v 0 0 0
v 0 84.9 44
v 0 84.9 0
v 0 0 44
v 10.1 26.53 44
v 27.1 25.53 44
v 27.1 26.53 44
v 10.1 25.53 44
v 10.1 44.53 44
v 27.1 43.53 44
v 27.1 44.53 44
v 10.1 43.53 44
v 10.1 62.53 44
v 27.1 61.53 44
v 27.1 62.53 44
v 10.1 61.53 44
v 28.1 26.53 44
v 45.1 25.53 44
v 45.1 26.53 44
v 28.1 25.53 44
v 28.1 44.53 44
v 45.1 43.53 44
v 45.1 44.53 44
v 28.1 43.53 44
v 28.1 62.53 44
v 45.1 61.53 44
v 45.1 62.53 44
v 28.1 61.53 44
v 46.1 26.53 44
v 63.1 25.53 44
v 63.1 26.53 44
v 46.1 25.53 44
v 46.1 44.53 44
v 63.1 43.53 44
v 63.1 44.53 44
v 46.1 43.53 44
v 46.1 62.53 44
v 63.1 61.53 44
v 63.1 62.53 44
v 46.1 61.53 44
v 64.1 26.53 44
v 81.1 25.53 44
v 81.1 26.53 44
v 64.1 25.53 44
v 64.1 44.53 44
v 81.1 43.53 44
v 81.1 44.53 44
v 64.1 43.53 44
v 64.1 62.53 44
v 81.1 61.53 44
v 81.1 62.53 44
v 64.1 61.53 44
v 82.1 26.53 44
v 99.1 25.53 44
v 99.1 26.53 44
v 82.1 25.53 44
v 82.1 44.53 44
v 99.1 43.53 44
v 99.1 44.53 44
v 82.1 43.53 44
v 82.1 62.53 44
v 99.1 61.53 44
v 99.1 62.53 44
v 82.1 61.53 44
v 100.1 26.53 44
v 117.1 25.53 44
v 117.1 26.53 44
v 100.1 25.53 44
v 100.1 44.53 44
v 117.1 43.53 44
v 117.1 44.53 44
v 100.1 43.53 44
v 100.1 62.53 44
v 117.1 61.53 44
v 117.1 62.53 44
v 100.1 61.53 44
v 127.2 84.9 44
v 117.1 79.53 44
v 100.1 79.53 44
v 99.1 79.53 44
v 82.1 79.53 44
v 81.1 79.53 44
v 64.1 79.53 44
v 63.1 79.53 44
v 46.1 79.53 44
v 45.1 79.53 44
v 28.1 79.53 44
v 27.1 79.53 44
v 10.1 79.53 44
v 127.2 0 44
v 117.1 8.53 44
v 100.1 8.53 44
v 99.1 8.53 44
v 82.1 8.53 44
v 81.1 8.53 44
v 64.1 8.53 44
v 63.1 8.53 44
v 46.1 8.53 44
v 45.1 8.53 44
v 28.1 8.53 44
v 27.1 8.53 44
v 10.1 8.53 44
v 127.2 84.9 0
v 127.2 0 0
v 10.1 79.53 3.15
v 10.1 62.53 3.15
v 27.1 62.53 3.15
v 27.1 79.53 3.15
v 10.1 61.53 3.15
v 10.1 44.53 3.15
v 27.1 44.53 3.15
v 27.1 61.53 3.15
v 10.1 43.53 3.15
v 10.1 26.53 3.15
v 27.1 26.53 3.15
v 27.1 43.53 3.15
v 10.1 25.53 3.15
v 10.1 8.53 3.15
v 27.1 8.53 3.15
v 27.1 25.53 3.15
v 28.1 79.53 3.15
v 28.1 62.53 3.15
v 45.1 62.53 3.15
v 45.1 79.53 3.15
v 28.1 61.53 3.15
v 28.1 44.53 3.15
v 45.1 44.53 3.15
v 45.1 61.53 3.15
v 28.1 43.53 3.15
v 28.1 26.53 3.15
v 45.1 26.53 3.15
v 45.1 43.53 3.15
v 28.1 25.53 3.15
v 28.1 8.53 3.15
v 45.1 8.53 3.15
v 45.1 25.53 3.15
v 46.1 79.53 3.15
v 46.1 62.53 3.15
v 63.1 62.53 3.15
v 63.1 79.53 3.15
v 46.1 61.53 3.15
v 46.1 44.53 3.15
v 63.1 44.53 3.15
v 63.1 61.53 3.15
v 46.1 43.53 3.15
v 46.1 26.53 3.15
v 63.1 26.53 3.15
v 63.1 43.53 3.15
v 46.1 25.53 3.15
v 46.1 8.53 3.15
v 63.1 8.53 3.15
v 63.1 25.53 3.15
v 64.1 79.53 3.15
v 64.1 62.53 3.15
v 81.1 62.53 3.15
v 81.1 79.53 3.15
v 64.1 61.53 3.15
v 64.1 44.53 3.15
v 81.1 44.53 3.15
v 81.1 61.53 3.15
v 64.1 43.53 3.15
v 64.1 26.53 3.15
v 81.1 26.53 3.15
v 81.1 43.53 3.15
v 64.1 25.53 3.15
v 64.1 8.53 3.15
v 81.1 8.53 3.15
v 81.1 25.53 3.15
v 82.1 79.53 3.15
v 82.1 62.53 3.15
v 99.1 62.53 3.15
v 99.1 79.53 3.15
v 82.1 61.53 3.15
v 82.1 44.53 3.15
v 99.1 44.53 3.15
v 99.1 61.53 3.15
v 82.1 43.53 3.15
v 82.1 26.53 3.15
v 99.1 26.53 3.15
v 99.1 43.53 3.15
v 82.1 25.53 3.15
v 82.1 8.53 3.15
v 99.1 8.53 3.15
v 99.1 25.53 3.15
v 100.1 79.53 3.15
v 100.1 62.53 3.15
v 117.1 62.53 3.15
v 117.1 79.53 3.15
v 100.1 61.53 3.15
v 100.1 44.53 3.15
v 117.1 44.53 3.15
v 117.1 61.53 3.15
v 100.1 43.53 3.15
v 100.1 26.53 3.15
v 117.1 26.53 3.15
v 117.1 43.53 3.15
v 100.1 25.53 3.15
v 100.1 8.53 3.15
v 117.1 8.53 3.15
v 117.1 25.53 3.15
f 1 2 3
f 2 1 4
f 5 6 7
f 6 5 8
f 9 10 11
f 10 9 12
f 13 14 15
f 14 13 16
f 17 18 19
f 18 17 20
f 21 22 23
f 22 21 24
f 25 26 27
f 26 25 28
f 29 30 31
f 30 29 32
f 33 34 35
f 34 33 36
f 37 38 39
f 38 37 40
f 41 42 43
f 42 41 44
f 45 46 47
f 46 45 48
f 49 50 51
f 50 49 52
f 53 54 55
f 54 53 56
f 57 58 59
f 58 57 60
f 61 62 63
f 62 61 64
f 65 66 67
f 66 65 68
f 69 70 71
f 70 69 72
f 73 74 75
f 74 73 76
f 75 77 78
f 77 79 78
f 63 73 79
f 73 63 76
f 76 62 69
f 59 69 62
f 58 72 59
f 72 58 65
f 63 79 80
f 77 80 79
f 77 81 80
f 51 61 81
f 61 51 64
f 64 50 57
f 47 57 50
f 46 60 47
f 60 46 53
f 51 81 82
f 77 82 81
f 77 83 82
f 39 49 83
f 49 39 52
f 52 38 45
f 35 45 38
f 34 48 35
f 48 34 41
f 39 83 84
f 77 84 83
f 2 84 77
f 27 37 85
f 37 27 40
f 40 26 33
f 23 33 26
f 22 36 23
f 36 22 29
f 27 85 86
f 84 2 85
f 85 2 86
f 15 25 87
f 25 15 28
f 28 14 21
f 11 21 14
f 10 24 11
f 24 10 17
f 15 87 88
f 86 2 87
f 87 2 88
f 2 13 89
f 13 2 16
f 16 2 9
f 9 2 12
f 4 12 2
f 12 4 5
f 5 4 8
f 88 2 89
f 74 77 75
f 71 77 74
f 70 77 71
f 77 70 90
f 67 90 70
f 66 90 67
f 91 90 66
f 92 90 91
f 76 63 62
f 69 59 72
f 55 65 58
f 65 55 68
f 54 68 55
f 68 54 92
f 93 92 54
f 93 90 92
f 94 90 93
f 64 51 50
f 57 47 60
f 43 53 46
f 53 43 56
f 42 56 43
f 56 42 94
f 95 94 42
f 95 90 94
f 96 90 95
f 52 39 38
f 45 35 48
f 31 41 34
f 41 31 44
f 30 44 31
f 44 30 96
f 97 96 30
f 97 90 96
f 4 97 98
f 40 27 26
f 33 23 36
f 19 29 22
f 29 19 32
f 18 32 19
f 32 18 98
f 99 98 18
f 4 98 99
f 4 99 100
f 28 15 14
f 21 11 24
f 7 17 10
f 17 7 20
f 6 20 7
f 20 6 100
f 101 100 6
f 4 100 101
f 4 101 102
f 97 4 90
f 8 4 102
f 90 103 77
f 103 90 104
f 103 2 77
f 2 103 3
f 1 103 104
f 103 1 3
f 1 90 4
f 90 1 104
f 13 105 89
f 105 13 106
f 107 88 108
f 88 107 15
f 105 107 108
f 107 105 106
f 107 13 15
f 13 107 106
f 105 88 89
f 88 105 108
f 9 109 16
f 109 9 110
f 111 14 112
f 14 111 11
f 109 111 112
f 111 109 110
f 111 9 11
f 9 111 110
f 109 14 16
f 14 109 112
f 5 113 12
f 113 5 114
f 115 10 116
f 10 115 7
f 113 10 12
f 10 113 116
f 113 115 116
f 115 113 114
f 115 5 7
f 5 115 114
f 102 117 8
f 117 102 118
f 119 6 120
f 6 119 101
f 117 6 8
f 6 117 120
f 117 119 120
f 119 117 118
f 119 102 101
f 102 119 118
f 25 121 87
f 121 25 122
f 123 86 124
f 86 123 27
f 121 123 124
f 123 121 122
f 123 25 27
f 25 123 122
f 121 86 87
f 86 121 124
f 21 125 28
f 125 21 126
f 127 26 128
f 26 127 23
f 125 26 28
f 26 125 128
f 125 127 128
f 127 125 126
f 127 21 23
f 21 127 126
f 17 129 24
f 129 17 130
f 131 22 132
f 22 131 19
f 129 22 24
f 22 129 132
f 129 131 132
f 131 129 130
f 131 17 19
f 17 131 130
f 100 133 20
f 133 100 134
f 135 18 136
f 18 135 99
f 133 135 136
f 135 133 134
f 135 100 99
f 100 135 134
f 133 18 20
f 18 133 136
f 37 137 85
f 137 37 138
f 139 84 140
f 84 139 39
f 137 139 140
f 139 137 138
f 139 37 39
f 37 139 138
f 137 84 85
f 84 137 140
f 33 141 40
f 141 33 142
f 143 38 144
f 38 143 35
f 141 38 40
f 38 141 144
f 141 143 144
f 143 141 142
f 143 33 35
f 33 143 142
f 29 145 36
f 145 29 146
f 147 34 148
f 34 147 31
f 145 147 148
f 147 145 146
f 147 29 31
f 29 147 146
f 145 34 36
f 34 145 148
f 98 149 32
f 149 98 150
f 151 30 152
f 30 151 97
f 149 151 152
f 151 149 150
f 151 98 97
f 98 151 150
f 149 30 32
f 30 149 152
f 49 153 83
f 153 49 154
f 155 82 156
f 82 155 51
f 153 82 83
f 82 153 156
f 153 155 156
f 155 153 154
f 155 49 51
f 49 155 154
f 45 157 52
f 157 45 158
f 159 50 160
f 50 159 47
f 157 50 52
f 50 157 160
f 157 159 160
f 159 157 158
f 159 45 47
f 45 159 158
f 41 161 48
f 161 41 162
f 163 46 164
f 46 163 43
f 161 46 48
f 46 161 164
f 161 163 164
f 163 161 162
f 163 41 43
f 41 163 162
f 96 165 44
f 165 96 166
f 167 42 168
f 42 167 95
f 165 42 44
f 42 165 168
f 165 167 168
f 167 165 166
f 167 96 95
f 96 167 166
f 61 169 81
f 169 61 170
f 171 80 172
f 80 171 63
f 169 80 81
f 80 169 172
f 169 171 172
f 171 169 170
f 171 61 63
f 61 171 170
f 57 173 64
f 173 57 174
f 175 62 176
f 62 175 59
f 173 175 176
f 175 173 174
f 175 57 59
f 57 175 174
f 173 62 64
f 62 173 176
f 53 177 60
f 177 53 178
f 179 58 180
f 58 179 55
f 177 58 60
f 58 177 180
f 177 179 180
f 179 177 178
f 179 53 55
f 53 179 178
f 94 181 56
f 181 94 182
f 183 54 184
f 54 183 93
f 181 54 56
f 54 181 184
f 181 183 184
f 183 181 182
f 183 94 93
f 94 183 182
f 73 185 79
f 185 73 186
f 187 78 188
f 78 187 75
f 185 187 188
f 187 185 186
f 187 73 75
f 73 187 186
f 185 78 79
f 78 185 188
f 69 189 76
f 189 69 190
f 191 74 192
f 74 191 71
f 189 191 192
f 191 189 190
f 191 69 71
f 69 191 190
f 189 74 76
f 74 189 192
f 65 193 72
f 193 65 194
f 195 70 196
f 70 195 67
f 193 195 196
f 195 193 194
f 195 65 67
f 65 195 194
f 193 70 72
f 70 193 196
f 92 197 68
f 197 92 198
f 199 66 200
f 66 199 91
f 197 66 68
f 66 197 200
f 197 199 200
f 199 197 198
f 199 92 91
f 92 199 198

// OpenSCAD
// NEST 24 Well Plate 10.4mL
// loadName: nest_24_wellplate_10.4ml
// Auto-generated by labware_to_stl.py from Opentrons V2 labware definition

$fn = 64;

difference() {
    // ── Labware body ──────────────────────────────────────────────
    cube([127.2000, 84.9000, 44.0000]);

    // ── Well cutouts ──────────────────────────────────────────────
    // Well A1
    translate([10.1000, 62.5300, 3.1500])
        cube([17.0000, 17.0000, 41.8500]);
    // Well B1
    translate([10.1000, 44.5300, 3.1500])
        cube([17.0000, 17.0000, 41.8500]);
    // Well C1
    translate([10.1000, 26.5300, 3.1500])
        cube([17.0000, 17.0000, 41.8500]);
    // Well D1
    translate([10.1000, 8.5300, 3.1500])
        cube([17.0000, 17.0000, 41.8500]);
    // Well A2
    translate([28.1000, 62.5300, 3.1500])
        cube([17.0000, 17.0000, 41.8500]);
    // Well B2
    translate([28.1000, 44.5300, 3.1500])
        cube([17.0000, 17.0000, 41.8500]);
    // Well C2
    translate([28.1000, 26.5300, 3.1500])
        cube([17.0000, 17.0000, 41.8500]);
    // Well D2
    translate([28.1000, 8.5300, 3.1500])
        cube([17.0000, 17.0000, 41.8500]);
    // Well A3
    translate([46.1000, 62.5300, 3.1500])
        cube([17.0000, 17.0000, 41.8500]);
    // Well B3
    translate([46.1000, 44.5300, 3.1500])
        cube([17.0000, 17.0000, 41.8500]);
    // Well C3
    translate([46.1000, 26.5300, 3.1500])
        cube([17.0000, 17.0000, 41.8500]);
    // Well D3
    translate([46.1000, 8.5300, 3.1500])
        cube([17.0000, 17.0000, 41.8500]);
    // Well A4
    translate([64.1000, 62.5300, 3.1500])
        cube([17.0000, 17.0000, 41.8500]);
    // Well B4
    translate([64.1000, 44.5300, 3.1500])
        cube([17.0000, 17.0000, 41.8500]);
    // Well C4
    translate([64.1000, 26.5300, 3.1500])
        cube([17.0000, 17.0000, 41.8500]);
    // Well D4
    translate([64.1000, 8.5300, 3.1500])
        cube([17.0000, 17.0000, 41.8500]);
    // Well A5
    translate([82.1000, 62.5300, 3.1500])
        cube([17.0000, 17.0000, 41.8500]);
    // Well B5
    translate([82.1000, 44.5300, 3.1500])
        cube([17.0000, 17.0000, 41.8500]);
    // Well C5
    translate([82.1000, 26.5300, 3.1500])
        cube([17.0000, 17.0000, 41.8500]);
    // Well D5
    translate([82.1000, 8.5300, 3.1500])
        cube([17.0000, 17.0000, 41.8500]);
    // Well A6
    translate([100.1000, 62.5300, 3.1500])
        cube([17.0000, 17.0000, 41.8500]);
    // Well B6
    translate([100.1000, 44.5300, 3.1500])
        cube([17.0000, 17.0000, 41.8500]);
    // Well C6
    translate([100.1000, 26.5300, 3.1500])
        cube([17.0000, 17.0000, 41.8500]);
    // Well D6
    translate([100.1000, 8.5300, 3.1500])
        cube([17.0000, 17.0000, 41.8500]);
}
